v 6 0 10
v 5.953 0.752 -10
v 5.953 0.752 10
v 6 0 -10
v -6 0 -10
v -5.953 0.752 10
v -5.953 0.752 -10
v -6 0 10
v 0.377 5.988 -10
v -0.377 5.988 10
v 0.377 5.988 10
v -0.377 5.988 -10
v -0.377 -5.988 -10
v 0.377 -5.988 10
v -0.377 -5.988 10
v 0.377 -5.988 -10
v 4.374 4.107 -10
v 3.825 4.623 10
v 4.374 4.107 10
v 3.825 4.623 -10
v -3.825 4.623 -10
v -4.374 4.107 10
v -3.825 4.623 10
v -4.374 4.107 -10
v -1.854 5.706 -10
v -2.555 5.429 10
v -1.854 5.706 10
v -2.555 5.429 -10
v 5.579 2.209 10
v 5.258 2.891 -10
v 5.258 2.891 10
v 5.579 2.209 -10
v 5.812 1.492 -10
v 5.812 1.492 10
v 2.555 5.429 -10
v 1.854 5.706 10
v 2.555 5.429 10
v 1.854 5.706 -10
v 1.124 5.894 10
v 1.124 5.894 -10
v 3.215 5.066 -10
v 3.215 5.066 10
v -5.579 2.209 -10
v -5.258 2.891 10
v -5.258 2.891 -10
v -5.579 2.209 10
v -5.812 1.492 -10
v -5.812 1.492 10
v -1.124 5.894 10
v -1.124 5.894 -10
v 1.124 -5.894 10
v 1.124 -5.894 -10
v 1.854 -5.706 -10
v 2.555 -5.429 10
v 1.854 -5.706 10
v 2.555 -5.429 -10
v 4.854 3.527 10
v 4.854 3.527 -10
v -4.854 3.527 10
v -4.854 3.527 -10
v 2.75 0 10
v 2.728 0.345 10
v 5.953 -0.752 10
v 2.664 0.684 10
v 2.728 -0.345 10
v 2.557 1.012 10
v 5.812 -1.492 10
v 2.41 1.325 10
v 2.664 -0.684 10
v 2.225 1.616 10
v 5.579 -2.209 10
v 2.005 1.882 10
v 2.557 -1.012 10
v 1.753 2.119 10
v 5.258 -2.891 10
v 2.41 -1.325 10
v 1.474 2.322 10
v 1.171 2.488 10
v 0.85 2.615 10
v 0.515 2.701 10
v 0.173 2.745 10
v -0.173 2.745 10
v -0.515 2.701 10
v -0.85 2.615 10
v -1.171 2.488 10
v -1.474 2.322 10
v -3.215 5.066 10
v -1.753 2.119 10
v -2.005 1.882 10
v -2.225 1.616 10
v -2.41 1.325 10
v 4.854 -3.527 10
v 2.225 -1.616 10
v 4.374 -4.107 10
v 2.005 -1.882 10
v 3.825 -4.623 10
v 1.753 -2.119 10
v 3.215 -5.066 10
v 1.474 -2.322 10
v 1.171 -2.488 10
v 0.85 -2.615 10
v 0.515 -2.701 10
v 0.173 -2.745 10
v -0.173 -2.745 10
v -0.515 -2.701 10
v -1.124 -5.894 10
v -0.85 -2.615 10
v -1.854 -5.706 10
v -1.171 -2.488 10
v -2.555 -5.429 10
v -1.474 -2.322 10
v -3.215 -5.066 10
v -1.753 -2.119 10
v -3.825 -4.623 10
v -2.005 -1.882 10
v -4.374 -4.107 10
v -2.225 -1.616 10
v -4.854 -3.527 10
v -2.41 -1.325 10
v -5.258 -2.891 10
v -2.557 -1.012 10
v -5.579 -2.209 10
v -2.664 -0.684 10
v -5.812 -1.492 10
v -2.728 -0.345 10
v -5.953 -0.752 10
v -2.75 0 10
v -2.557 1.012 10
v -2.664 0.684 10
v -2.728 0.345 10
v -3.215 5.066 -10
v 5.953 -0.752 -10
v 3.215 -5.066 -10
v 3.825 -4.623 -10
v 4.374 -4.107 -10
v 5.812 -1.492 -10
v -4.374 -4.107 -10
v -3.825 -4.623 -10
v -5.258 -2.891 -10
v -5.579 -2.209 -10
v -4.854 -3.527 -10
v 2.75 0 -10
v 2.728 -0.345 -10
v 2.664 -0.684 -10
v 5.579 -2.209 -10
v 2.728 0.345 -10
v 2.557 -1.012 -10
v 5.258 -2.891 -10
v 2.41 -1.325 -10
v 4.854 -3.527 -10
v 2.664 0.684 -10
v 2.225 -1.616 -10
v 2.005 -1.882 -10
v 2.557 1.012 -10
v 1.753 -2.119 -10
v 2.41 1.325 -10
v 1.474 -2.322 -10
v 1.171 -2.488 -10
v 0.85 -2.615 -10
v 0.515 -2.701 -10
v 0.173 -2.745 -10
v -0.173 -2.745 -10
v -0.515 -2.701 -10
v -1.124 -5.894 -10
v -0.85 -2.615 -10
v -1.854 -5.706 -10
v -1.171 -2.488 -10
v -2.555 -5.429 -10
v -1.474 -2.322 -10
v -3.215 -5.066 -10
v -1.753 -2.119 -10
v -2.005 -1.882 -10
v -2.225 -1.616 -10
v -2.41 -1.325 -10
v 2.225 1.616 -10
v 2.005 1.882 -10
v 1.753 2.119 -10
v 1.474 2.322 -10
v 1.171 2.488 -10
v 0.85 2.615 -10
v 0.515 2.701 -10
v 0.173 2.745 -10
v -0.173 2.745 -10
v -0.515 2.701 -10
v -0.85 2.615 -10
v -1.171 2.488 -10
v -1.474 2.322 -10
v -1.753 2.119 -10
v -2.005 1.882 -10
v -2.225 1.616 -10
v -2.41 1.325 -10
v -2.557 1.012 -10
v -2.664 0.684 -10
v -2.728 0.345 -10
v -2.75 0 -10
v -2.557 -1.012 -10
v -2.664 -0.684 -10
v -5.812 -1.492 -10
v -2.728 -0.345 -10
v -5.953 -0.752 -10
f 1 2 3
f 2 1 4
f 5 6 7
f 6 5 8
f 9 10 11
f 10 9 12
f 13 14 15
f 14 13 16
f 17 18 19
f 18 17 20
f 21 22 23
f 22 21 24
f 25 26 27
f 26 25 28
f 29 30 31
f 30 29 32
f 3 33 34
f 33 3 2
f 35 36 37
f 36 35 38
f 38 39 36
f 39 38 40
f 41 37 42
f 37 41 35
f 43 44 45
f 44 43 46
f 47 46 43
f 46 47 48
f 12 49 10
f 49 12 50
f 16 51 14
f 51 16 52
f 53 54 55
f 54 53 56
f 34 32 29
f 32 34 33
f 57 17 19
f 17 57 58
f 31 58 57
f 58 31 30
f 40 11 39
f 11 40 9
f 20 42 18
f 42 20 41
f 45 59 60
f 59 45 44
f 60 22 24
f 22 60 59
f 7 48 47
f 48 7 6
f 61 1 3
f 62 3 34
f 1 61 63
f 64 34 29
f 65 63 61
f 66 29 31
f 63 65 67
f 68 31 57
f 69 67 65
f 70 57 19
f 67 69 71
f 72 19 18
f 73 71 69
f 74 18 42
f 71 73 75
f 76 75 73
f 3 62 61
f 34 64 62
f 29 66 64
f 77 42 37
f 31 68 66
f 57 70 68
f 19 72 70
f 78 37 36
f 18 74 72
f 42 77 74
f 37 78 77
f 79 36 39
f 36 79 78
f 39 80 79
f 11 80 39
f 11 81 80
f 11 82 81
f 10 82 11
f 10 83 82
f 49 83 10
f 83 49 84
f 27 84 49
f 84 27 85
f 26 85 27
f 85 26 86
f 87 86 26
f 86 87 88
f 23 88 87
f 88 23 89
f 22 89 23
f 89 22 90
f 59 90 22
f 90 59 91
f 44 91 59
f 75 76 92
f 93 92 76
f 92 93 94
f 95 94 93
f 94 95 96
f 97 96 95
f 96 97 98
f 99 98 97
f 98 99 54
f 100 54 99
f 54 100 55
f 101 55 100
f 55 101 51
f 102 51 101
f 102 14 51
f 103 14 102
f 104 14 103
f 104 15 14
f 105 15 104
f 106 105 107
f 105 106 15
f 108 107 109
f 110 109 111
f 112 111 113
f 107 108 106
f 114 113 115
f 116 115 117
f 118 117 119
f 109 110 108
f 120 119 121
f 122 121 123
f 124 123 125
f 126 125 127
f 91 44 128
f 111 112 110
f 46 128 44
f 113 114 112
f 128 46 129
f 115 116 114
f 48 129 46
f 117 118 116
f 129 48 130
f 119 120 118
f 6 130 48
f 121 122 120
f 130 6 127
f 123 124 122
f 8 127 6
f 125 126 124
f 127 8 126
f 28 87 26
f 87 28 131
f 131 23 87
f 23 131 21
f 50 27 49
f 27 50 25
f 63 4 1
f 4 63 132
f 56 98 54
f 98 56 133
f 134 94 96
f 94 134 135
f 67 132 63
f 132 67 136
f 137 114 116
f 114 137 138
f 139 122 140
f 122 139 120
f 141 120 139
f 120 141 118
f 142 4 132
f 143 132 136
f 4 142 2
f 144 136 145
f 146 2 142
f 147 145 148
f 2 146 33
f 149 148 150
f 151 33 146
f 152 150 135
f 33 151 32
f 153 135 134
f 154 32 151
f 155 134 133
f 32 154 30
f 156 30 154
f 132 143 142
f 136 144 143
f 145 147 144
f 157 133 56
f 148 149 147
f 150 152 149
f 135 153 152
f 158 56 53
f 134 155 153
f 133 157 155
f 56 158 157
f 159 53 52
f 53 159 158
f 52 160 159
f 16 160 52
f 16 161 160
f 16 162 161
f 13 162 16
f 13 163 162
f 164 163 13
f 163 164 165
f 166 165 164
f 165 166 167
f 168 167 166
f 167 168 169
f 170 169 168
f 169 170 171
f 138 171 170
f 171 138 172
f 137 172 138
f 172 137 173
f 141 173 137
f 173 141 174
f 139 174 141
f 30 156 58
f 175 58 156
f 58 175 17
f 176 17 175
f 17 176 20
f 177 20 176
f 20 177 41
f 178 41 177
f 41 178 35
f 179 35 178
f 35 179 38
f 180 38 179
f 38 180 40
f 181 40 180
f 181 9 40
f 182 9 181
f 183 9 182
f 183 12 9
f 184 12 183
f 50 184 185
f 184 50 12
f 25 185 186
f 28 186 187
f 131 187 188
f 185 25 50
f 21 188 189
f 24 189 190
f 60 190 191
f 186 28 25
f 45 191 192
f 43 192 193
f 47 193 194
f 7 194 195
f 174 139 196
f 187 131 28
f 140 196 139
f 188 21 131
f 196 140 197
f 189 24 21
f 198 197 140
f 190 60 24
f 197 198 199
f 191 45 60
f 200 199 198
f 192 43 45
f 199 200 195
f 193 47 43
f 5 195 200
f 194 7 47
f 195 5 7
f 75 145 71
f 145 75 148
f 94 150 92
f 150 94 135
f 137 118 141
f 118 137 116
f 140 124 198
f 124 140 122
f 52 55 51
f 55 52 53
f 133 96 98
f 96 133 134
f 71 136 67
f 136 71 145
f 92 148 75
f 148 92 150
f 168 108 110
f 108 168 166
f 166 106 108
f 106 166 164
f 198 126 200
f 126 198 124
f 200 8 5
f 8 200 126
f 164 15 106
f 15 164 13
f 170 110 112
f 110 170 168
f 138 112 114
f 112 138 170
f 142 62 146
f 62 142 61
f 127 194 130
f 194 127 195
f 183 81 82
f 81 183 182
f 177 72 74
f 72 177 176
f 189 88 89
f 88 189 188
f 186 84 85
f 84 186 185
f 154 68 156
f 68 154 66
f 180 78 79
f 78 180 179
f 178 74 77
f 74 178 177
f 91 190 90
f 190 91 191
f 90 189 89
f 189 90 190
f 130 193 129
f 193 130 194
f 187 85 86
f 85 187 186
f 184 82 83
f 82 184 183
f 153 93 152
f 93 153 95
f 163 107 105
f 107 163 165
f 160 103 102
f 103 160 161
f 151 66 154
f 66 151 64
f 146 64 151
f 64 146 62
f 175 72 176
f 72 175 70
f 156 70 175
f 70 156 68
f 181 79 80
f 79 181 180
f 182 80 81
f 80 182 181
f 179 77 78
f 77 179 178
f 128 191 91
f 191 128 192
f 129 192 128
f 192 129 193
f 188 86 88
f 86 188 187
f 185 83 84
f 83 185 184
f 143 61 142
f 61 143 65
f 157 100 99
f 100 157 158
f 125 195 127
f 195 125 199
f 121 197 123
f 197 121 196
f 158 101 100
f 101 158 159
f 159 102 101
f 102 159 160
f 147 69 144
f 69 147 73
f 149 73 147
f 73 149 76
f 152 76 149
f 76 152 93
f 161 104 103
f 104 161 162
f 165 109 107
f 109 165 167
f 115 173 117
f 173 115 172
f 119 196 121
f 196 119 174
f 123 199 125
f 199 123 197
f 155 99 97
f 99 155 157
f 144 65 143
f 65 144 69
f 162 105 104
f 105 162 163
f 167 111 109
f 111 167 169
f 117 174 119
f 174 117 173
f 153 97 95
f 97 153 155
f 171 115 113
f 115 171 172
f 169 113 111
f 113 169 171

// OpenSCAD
$fn = 50;


difference() {
	union() {
		translate(v = [0, 0, -10.0000000000]) {
			cylinder(h = 20, r = 6.0000000000);
		}
	}
	union() {
		translate(v = [0, 0, -100.0000000000]) {
			cylinder(h = 200, r = 2.7500000000);
		}
	}
}
